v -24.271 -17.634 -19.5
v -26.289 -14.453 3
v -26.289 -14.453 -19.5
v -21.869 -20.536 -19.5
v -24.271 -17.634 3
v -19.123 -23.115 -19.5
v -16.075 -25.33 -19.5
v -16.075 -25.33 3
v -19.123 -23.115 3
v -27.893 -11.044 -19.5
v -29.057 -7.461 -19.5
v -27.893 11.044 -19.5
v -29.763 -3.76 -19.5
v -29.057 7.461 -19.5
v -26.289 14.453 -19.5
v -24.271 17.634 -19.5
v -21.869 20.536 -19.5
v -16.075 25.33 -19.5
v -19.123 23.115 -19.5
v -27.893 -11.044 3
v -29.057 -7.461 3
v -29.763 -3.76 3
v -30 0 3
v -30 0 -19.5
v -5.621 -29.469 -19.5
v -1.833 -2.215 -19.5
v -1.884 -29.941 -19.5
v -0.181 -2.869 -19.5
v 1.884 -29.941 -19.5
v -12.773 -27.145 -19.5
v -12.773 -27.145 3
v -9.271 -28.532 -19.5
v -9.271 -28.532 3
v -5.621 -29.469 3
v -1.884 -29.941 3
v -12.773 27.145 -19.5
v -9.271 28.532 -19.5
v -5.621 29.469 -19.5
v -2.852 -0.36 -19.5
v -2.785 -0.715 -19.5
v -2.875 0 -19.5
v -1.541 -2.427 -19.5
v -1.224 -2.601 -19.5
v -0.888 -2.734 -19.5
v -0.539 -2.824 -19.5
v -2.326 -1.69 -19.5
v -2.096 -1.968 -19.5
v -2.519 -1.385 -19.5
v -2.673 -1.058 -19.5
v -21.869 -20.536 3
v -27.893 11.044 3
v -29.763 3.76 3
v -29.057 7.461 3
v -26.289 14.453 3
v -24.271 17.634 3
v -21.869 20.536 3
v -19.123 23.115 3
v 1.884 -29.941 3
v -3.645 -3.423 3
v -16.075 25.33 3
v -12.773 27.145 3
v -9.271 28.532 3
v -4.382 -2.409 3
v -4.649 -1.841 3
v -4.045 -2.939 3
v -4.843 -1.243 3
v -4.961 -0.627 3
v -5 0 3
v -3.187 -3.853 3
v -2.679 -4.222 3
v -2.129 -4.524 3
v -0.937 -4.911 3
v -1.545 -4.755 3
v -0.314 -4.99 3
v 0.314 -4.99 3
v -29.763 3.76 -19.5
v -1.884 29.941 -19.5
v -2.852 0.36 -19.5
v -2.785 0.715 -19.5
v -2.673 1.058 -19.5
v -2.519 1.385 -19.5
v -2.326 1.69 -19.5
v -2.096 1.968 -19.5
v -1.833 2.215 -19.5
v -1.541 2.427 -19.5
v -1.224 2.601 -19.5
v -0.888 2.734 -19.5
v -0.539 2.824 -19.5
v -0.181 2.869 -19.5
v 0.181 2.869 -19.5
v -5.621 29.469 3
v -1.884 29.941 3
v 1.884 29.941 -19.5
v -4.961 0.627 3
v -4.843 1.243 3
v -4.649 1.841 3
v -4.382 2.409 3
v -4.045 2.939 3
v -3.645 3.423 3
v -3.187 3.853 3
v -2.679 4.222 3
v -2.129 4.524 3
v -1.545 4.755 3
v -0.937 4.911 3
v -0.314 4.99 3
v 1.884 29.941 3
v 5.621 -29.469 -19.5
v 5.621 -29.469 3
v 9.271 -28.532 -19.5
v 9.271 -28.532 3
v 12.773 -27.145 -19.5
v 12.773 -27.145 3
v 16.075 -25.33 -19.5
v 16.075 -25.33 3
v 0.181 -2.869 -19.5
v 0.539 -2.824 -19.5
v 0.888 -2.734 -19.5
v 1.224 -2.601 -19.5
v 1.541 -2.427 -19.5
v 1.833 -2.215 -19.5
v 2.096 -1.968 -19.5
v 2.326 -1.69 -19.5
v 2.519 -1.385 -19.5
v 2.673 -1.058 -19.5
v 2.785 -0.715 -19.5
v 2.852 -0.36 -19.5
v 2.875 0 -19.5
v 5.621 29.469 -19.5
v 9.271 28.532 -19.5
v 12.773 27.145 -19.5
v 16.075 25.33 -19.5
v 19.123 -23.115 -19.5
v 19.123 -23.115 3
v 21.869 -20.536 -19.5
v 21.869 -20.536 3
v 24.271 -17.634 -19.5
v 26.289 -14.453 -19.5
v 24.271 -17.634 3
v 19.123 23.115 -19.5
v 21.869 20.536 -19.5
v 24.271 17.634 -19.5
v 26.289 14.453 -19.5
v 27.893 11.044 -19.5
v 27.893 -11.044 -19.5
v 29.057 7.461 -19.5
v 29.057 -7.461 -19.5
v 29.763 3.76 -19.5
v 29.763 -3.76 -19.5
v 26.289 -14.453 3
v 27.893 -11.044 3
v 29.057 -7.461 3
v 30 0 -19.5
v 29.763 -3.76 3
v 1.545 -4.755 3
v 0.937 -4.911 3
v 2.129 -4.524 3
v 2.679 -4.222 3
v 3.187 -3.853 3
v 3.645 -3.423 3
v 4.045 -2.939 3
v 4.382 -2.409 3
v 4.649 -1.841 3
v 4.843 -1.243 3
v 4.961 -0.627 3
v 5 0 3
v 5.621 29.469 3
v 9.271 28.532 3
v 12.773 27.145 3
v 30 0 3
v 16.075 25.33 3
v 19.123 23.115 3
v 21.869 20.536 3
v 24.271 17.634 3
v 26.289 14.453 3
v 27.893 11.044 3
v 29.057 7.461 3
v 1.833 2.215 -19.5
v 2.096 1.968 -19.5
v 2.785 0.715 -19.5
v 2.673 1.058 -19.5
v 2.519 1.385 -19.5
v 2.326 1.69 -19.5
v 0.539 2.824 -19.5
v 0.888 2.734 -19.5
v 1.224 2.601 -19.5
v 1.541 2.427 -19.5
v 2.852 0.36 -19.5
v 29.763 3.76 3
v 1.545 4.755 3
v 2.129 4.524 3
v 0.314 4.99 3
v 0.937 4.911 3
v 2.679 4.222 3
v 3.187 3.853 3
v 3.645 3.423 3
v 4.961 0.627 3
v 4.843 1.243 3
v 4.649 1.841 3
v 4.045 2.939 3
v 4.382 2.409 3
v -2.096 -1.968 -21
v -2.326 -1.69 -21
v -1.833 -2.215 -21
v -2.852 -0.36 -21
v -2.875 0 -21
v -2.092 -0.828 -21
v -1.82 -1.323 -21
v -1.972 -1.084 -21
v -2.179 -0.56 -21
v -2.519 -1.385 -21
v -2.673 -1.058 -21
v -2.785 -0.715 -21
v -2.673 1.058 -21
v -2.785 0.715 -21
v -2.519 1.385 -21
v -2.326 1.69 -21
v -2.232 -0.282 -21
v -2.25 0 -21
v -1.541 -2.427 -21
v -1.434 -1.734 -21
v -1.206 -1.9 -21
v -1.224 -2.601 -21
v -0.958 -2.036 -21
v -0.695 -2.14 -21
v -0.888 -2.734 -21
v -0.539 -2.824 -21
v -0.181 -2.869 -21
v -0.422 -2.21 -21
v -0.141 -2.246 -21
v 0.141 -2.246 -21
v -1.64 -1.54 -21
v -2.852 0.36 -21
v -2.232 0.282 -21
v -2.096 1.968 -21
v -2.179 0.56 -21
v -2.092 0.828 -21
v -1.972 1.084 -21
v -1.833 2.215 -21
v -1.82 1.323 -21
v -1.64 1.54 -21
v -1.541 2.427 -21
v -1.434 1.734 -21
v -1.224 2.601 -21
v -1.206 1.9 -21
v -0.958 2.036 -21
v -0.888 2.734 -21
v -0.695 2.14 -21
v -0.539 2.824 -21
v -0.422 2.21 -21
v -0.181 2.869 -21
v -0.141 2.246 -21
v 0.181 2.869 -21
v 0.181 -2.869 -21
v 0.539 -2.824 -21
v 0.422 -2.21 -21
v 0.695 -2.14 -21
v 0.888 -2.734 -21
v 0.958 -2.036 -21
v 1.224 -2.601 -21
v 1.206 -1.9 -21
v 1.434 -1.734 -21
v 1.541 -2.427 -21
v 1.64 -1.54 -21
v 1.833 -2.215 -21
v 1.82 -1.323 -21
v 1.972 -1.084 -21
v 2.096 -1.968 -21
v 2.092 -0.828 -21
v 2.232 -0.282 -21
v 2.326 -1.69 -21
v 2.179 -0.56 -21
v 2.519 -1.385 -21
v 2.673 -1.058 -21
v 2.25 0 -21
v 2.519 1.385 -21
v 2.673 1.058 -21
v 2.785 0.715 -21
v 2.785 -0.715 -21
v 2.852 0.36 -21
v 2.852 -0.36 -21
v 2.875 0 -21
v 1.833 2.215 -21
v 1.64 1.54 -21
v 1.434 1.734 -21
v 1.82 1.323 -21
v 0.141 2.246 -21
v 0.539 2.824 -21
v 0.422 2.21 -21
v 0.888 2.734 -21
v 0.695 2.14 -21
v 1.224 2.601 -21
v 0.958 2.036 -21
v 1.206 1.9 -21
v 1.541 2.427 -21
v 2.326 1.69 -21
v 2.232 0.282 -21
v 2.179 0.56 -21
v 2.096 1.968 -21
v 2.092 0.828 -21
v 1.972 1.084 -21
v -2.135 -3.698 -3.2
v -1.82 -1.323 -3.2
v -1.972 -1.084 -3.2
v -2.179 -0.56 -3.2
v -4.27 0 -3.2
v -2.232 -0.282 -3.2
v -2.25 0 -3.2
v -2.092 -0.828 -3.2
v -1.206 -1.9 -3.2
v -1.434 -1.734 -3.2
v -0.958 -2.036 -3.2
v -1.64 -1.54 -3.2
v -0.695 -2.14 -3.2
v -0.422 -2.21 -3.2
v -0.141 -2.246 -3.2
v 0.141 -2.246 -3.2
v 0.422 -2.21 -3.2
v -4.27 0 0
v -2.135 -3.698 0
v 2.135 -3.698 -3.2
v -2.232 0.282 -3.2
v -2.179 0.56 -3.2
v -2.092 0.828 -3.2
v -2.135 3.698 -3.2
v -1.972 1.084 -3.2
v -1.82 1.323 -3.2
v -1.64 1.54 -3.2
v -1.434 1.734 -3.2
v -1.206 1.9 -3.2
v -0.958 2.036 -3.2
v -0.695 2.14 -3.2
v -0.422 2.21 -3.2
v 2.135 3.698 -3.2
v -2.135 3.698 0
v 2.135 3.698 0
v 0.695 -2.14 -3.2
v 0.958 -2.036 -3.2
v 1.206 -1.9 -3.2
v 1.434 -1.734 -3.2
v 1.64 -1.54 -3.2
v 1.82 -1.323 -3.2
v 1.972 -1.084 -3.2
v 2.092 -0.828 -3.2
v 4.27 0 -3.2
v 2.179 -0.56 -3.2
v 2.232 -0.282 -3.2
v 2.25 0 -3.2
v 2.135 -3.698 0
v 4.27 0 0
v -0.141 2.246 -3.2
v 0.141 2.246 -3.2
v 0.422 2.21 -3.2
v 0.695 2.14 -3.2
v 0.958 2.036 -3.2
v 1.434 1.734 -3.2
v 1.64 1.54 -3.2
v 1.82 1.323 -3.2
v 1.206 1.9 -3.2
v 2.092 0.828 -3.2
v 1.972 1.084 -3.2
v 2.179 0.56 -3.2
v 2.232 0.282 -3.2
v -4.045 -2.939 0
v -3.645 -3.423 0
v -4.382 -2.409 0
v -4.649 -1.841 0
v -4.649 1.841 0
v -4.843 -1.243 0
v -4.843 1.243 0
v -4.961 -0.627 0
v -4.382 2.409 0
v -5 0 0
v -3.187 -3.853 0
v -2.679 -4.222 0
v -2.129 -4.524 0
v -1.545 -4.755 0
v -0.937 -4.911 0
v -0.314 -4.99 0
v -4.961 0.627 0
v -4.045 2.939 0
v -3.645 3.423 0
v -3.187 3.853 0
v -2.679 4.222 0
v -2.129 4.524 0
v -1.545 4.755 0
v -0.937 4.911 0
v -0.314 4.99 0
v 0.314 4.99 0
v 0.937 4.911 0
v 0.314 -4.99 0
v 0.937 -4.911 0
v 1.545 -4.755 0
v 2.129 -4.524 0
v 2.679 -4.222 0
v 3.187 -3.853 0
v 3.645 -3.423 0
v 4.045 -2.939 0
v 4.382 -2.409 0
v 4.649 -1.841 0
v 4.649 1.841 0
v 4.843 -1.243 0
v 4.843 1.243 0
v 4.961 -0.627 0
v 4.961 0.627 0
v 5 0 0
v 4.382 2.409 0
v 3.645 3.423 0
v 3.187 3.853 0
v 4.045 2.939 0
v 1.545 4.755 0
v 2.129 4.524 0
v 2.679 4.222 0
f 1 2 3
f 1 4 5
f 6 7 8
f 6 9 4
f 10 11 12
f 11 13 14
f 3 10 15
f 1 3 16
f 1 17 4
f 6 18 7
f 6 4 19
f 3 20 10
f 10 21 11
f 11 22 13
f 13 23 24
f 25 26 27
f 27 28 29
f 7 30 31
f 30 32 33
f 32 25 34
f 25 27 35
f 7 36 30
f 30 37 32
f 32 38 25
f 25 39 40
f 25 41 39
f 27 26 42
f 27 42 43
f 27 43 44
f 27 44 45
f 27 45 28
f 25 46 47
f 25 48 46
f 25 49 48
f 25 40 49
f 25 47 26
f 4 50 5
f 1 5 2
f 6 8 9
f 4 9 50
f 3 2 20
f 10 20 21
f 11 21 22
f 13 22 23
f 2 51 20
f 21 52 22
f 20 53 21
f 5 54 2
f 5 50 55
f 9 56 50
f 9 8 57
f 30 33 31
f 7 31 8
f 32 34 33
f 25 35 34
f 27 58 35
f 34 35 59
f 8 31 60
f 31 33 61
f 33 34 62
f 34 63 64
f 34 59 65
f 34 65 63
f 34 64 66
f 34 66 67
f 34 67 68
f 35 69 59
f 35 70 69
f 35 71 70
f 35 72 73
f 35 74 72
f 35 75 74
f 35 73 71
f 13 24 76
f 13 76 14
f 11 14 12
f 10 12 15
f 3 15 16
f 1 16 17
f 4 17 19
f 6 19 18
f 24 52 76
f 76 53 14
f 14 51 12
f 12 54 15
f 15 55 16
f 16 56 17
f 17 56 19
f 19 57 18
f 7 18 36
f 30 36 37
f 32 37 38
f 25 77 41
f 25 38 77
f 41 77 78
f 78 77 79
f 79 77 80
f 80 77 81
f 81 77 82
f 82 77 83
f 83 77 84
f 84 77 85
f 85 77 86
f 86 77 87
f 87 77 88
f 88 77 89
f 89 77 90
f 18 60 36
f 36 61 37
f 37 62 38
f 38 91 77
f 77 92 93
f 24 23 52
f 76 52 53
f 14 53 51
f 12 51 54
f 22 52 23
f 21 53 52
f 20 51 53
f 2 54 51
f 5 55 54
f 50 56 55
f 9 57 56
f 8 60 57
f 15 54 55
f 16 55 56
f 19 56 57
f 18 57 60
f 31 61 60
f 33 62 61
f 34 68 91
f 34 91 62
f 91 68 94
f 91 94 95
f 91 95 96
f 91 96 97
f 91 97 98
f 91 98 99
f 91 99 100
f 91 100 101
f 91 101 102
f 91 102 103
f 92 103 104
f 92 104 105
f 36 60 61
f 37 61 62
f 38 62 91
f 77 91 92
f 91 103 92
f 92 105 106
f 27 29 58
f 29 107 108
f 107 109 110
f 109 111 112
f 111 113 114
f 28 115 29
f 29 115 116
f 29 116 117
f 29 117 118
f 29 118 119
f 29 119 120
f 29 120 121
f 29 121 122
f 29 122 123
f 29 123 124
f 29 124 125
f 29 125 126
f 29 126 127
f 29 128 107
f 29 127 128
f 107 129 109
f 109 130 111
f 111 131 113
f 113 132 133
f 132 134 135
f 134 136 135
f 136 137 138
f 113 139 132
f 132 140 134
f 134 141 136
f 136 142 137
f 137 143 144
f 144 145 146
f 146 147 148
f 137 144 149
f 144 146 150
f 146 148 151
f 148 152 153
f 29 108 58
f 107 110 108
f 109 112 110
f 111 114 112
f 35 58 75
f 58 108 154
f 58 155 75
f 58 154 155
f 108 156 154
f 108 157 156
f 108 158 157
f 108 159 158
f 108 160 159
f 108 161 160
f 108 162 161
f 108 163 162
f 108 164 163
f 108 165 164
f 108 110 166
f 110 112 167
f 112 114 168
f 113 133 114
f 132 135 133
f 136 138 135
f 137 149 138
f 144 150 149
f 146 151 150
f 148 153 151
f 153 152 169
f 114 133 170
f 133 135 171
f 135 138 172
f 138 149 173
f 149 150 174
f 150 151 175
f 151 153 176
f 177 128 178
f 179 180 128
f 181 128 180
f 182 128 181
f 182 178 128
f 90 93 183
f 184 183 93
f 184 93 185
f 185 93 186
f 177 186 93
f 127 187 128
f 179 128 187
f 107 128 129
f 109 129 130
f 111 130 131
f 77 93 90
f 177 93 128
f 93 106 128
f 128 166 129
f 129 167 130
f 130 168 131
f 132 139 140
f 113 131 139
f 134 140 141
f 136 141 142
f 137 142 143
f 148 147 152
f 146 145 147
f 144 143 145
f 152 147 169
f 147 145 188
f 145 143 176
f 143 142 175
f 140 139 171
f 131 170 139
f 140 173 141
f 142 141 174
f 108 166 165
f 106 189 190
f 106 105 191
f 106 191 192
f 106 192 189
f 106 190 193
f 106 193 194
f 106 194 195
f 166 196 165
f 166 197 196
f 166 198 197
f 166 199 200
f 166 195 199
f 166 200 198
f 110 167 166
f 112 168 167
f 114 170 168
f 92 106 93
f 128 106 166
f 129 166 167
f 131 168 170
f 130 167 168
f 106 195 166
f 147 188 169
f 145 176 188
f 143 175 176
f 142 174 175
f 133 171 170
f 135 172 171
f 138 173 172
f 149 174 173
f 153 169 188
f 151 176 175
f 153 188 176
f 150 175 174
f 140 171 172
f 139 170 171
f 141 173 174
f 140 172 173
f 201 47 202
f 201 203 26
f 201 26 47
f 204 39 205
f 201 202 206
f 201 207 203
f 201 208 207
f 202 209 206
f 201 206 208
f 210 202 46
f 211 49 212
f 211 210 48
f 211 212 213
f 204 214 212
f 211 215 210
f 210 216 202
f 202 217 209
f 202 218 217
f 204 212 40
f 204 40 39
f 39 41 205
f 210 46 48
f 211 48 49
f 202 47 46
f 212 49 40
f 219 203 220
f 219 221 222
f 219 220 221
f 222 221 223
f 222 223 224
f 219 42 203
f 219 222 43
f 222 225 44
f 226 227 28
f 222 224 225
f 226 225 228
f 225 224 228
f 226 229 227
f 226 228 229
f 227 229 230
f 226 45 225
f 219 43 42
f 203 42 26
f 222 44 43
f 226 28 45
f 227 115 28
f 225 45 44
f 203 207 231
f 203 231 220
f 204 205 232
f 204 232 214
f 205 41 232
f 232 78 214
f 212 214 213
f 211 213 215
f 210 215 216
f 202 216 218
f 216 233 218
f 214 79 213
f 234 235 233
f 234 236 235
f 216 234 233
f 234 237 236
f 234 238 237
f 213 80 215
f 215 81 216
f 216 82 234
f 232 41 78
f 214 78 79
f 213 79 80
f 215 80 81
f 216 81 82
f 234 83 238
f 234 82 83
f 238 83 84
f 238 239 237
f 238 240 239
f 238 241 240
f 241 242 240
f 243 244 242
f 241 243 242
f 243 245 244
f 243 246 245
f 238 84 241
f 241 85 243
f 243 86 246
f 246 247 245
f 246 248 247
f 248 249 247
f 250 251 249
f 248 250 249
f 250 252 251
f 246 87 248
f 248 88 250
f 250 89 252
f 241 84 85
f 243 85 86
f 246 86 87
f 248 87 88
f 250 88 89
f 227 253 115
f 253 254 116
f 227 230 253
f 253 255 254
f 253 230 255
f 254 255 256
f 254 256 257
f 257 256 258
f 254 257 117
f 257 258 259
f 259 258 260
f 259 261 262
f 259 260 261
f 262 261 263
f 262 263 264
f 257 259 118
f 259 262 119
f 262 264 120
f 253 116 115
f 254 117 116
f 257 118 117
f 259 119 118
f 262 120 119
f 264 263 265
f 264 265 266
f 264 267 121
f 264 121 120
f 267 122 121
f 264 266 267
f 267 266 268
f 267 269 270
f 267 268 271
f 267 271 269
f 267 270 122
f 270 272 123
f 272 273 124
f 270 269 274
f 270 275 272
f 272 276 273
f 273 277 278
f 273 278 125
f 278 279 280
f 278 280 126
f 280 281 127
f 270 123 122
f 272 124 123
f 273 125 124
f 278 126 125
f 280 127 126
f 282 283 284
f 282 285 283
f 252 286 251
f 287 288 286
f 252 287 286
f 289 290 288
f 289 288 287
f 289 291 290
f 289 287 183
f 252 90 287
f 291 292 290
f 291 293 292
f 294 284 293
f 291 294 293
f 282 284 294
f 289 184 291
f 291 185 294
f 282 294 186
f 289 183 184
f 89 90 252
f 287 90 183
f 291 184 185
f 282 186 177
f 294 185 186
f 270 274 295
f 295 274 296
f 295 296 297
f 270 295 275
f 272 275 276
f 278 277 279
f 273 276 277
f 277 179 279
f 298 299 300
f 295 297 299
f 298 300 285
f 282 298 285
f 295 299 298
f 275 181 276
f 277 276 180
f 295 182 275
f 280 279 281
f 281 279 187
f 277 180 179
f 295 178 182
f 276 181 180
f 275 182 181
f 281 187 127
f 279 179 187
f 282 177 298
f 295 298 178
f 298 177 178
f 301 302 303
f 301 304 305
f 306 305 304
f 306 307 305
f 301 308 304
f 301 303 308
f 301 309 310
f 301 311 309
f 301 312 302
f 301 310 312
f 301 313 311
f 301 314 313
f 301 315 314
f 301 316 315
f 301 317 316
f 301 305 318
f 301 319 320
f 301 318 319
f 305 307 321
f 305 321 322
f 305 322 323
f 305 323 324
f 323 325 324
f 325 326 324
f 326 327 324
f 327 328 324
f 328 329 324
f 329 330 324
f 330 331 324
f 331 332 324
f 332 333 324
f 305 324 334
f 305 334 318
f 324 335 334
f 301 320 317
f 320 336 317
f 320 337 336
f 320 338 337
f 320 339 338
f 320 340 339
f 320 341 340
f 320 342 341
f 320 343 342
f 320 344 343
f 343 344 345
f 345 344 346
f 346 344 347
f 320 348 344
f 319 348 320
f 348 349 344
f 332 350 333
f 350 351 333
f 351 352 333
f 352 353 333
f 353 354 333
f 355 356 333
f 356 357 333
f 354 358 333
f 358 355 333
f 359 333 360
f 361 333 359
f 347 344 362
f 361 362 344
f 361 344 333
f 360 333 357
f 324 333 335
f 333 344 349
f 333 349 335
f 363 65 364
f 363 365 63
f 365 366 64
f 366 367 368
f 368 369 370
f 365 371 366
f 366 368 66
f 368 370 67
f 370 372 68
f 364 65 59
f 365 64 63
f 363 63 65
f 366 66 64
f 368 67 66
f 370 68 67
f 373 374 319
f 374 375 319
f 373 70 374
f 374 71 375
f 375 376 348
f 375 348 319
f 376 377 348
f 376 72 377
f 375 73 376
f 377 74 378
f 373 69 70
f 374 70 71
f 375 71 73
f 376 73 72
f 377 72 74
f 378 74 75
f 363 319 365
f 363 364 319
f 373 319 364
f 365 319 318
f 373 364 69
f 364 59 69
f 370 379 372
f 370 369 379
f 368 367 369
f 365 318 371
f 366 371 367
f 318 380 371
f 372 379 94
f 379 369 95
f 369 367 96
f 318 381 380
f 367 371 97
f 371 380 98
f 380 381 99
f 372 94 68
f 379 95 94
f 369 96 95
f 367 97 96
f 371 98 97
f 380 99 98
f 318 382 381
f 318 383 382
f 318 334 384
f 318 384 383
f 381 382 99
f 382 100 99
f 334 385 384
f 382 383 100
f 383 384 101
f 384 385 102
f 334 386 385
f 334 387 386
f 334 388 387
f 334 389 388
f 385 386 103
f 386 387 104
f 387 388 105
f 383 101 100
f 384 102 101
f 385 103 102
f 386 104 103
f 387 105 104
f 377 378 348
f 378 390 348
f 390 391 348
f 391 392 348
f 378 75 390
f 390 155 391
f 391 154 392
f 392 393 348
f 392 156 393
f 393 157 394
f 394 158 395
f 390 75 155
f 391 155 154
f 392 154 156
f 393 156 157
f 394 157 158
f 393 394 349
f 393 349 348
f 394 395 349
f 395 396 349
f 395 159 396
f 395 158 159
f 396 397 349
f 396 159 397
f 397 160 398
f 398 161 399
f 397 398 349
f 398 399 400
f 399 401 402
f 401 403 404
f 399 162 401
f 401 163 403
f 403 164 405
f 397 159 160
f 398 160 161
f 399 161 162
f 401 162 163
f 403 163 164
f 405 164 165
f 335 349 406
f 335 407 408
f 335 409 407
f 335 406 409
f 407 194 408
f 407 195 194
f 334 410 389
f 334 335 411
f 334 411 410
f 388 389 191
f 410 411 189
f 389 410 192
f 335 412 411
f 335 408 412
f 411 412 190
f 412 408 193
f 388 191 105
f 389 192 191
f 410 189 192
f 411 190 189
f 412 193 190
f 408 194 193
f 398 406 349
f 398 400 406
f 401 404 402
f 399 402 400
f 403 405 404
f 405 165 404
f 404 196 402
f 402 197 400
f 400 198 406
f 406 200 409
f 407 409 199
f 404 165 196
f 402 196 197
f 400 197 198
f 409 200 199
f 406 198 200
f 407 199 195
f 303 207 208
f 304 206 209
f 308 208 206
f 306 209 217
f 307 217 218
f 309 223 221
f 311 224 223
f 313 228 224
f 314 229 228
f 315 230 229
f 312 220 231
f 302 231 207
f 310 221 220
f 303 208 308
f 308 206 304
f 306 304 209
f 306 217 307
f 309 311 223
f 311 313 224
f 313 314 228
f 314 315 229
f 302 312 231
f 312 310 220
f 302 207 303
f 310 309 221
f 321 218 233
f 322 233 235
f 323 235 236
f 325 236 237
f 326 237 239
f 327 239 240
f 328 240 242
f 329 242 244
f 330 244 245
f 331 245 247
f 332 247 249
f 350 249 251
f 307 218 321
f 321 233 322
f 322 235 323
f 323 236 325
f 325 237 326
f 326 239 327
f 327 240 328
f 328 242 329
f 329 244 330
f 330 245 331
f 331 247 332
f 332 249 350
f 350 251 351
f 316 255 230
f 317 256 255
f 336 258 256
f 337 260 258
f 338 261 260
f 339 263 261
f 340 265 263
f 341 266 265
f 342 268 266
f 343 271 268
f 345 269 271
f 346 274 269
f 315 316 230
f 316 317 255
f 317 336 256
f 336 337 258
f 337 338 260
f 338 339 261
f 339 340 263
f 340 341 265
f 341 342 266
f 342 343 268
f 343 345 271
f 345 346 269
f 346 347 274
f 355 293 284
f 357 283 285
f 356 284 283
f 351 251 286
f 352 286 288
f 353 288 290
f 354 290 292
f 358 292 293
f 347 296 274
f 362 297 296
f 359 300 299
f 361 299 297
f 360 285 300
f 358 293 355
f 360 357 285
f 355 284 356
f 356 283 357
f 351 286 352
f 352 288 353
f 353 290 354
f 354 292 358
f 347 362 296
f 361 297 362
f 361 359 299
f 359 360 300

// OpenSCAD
$fn = 50;


difference() {
	union() {
		translate(v = [0, 0, -19.5000000000]) {
			cylinder(h = 22.5000000000, r = 30.0000000000);
		}
		#translate(v = [0, 0, -21.0000000000]) {
			cylinder(h = 21, r = 2.8750000000);
		}
	}
	union() {
		translate(v = [0, 0, 0]) {
			rotate(a = [0, 0, 0]) {
				difference() {
					union() {
						translate(v = [0, 0, -3.2000000000]) {
							linear_extrude(height = 3.2000000000) {
								polygon(points = [[4.2698000000, 0.0000000000], [2.1349000000, 3.6977552691], [-2.1349000000, 3.6977552691], [-4.2698000000, 0.0000000000], [-2.1349000000, -3.6977552691], [2.1349000000, -3.6977552691]]);
							}
						}
					}
					union();
				}
			}
		}
		#cylinder(h = 3, r = 5.0000000000);
		#translate(v = [0, 0, -100.0000000000]) {
			cylinder(h = 200, r = 2.2500000000);
		}
	}
}
